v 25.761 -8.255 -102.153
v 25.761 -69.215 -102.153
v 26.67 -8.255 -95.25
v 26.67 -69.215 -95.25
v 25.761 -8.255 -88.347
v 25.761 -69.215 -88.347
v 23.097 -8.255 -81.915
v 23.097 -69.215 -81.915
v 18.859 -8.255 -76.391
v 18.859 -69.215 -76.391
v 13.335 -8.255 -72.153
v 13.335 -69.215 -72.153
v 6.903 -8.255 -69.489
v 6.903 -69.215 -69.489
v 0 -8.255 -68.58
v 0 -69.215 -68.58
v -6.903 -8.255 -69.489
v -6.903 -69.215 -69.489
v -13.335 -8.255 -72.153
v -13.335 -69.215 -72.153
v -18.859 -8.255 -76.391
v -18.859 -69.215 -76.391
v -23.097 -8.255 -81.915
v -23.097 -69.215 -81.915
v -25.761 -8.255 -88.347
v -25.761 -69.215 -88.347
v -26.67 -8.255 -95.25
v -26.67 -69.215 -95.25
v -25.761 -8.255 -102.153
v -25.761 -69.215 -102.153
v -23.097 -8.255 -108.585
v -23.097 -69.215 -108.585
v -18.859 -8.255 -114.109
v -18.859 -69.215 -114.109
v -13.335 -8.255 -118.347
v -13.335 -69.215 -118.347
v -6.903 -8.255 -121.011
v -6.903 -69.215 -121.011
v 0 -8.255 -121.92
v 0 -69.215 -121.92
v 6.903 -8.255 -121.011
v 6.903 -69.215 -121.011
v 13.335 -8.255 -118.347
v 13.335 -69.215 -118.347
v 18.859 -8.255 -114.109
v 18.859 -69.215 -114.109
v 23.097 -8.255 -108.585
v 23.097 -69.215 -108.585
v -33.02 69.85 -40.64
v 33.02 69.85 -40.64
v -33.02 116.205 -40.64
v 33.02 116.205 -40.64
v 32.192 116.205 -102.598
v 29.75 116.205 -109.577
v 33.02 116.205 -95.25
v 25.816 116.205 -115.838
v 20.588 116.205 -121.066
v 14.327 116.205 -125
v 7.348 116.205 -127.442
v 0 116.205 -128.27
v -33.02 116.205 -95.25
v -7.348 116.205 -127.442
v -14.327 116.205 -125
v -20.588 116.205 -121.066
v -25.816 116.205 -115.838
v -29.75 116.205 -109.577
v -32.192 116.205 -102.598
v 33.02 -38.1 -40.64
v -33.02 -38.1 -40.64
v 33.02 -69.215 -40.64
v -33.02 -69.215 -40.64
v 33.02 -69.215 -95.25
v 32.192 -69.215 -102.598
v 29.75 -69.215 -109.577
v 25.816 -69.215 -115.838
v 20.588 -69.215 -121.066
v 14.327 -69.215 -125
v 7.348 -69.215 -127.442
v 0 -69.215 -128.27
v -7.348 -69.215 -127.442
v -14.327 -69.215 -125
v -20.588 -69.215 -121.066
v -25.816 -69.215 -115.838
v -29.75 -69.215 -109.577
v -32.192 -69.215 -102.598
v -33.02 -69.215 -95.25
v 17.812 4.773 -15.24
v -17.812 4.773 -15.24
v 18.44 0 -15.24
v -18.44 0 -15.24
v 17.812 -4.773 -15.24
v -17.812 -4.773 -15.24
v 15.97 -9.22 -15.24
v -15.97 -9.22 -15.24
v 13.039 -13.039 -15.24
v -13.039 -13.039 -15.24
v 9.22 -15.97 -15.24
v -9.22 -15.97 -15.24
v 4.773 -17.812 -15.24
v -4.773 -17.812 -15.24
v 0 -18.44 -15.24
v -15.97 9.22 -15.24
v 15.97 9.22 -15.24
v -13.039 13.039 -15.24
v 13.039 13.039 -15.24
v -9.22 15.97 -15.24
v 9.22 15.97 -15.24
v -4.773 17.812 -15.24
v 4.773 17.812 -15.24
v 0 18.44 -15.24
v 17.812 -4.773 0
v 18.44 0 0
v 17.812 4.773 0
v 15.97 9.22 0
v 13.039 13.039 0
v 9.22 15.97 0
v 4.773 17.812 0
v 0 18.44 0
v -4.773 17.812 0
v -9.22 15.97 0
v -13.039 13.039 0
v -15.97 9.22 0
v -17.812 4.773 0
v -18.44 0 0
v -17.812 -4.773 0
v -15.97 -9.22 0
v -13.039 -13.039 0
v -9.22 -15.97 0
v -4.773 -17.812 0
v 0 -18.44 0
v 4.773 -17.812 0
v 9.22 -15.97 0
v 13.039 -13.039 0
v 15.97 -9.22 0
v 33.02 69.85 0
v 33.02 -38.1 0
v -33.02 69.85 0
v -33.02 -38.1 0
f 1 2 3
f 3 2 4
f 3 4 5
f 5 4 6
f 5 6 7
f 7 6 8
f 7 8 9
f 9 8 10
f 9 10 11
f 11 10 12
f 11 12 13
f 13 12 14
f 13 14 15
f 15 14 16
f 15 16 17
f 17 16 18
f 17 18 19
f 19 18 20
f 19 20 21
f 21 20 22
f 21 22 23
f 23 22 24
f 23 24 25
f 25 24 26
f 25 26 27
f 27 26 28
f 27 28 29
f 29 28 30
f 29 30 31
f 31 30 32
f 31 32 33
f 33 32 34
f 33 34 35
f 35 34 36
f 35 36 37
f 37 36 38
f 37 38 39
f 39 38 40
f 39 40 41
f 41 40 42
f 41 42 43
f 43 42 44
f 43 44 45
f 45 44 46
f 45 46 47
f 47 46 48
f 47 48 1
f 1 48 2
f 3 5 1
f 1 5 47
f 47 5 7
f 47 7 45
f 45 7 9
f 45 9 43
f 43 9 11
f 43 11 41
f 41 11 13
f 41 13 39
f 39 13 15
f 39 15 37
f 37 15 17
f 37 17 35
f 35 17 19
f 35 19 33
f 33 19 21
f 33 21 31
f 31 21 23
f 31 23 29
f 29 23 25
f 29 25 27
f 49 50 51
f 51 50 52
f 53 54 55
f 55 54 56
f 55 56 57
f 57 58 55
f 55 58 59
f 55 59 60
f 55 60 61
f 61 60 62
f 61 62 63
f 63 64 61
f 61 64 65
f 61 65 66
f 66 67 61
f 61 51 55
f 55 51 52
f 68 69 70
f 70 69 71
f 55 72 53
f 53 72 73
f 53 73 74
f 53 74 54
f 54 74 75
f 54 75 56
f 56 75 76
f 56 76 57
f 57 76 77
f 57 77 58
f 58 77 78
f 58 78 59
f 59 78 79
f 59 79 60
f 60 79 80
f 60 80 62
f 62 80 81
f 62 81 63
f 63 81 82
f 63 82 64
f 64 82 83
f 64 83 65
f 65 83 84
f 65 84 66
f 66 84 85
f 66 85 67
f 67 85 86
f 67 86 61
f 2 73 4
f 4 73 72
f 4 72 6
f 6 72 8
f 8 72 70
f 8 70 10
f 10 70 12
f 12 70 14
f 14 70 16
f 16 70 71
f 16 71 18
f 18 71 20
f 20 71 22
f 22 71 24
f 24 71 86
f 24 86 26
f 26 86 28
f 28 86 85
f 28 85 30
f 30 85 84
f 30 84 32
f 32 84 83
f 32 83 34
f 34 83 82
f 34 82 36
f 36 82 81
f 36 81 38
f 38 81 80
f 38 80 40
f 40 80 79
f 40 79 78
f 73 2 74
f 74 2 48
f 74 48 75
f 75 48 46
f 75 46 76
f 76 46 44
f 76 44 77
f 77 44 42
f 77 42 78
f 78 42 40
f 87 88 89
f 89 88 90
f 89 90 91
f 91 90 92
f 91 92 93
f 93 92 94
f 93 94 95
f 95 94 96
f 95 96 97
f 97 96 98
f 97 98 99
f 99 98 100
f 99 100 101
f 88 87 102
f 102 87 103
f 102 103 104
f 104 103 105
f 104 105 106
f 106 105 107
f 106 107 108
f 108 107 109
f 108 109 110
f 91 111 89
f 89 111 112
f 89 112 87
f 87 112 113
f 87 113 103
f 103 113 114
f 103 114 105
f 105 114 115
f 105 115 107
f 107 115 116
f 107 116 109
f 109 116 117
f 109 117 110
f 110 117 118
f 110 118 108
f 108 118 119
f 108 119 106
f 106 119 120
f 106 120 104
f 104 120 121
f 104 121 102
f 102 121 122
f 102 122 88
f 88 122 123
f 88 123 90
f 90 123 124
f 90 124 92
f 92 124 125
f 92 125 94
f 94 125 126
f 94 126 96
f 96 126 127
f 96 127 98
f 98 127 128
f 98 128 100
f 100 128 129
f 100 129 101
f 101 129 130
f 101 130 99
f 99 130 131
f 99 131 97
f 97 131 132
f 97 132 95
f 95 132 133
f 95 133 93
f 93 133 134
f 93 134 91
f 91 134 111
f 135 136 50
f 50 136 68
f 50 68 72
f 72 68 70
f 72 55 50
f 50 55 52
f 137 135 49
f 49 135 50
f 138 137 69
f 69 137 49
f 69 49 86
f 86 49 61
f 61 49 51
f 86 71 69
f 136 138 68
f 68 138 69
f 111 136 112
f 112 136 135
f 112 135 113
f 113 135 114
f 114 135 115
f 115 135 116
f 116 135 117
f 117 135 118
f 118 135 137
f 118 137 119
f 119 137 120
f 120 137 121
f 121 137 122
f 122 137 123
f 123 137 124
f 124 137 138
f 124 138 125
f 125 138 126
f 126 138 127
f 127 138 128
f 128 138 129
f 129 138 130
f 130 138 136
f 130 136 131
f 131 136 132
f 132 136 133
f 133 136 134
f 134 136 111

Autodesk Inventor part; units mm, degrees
ref_plane "YZ Plane" through (0, 0, 0) normal (1, 0, 0) x (0, 1, 0)
ref_plane "XZ Plane" through (0, 0, 0) normal (0, 1, 0) x (-1, 0, 0)
ref_plane "XY Plane" through (0, 0, 0) normal (0, 0, 1) x (1, 0, 0)
sketch "Sketch1" plane through (0, 0, 0) normal (0, 0, 1) x (1, 0, 0)
  circle A0 centre (0, 0) radius 18.4404
  line L0 (-33.02, -38.1) -> (33.02, -38.1)
  line L1 (33.02, -38.1) -> (33.02, 69.85)
  line L2 (33.02, 69.85) -> (-33.02, 69.85)
  line L3 (-33.02, 69.85) -> (-33.02, -38.1)
  dimension "d0" = 36.8808
  dimension "d1" = 66.04
  dimension "d2" = 107.95
  dimension "d3" = 33.02
  dimension "d4" = 38.1
extrude "Extrusion1" add sketch "Sketch1" against normal blind 40.64
sketch "Sketch2" plane through (0, 0, -40.64) normal (0, 0, -1) x (-1, 0, 0)
  circle A0 centre (0, 0) radius 25.1006
extrude "Extrusion2" add sketch "Sketch2" against normal blind 25.4
sketch "Sketch3" plane through (-33.02, -38.1, 0) normal (0, -1, 0) x (1, 0, 0)
  line L0 (0, 0) -> (66.04, 0) projected
  line L1 (66.04, 0) -> (0, 0)
  line L2 (0, 0) -> (0, -95.25)
  line L3 (0, -95.25) -> (66.04, -95.25)
  line L4 (66.04, -95.25) -> (66.04, 0)
  line L5 (66.04, -40.64) -> (0, -40.64)
  arc A0 (0, -95.25) -> (66.04, -95.25) centre (33.02, -95.25) ccw
  line L6 (0, -40.64) -> (66.04, -40.64) projected
  line L7 (0, -40.64) -> (66.04, -40.64)
  line L8 (66.04, -40.64) -> (66.04, -95.25)
  line L9 (66.04, -95.25) -> (0, -95.25)
  line L10 (0, -95.25) -> (0, -40.64)
  point P0 (33.02, 0)
  dimension "d9" = 54.61
extrude "Extrusion3" add sketch "Sketch3" along normal mid plane 62.23 contours L5 L4 L3 L2 | L3 A0
sketch "Sketch4" plane through (-33.02, -38.1, 0) normal (0, -1, 0) x (1, 0, 0)
  point P0 (33.02, 0)
sketch "Sketch5" plane through (-33.02, -6.985, 0) normal (0, 1, 0) x (1, 0, 0)
  arc A0 (66.04, 95.25) -> (0, 95.25) centre (33.02, 95.25) ccw projected
  line L0 (66.04, 40.64) -> (66.04, 95.25) projected
  line L1 (0, 95.25) -> (66.04, 95.25)
  line L2 (66.04, 95.25) -> (66.04, 40.64)
  line L3 (66.04, 40.64) -> (0, 40.64)
  line L4 (0, 40.64) -> (0, 95.25)
  arc A1 (66.04, 95.25) -> (0, 95.25) centre (33.02, 95.25) ccw
  point P0 (33.02, 0)
extrude "Extrusion4" add sketch "Sketch5" along normal blind 123.19
sketch "Sketch6" plane through (-33.02, -69.215, 0) normal (0, -1, 0) x (1, 0, 0)
  arc A0 (0, -95.25) -> (66.04, -95.25) centre (33.02, -95.25) ccw projected
  line L0 (0, -95.25) -> (33.02, -95.25)
  circle A1 centre (33.02, -95.25) radius 26.67
  point P0 (33.02, 0)
  dimension "d16" = 53.34
extrude "Extrusion5" cut sketch "Sketch6" against normal blind 60.96
equation "\"d3\" = 0.5 * d1"
properties part number "Wrist1"
